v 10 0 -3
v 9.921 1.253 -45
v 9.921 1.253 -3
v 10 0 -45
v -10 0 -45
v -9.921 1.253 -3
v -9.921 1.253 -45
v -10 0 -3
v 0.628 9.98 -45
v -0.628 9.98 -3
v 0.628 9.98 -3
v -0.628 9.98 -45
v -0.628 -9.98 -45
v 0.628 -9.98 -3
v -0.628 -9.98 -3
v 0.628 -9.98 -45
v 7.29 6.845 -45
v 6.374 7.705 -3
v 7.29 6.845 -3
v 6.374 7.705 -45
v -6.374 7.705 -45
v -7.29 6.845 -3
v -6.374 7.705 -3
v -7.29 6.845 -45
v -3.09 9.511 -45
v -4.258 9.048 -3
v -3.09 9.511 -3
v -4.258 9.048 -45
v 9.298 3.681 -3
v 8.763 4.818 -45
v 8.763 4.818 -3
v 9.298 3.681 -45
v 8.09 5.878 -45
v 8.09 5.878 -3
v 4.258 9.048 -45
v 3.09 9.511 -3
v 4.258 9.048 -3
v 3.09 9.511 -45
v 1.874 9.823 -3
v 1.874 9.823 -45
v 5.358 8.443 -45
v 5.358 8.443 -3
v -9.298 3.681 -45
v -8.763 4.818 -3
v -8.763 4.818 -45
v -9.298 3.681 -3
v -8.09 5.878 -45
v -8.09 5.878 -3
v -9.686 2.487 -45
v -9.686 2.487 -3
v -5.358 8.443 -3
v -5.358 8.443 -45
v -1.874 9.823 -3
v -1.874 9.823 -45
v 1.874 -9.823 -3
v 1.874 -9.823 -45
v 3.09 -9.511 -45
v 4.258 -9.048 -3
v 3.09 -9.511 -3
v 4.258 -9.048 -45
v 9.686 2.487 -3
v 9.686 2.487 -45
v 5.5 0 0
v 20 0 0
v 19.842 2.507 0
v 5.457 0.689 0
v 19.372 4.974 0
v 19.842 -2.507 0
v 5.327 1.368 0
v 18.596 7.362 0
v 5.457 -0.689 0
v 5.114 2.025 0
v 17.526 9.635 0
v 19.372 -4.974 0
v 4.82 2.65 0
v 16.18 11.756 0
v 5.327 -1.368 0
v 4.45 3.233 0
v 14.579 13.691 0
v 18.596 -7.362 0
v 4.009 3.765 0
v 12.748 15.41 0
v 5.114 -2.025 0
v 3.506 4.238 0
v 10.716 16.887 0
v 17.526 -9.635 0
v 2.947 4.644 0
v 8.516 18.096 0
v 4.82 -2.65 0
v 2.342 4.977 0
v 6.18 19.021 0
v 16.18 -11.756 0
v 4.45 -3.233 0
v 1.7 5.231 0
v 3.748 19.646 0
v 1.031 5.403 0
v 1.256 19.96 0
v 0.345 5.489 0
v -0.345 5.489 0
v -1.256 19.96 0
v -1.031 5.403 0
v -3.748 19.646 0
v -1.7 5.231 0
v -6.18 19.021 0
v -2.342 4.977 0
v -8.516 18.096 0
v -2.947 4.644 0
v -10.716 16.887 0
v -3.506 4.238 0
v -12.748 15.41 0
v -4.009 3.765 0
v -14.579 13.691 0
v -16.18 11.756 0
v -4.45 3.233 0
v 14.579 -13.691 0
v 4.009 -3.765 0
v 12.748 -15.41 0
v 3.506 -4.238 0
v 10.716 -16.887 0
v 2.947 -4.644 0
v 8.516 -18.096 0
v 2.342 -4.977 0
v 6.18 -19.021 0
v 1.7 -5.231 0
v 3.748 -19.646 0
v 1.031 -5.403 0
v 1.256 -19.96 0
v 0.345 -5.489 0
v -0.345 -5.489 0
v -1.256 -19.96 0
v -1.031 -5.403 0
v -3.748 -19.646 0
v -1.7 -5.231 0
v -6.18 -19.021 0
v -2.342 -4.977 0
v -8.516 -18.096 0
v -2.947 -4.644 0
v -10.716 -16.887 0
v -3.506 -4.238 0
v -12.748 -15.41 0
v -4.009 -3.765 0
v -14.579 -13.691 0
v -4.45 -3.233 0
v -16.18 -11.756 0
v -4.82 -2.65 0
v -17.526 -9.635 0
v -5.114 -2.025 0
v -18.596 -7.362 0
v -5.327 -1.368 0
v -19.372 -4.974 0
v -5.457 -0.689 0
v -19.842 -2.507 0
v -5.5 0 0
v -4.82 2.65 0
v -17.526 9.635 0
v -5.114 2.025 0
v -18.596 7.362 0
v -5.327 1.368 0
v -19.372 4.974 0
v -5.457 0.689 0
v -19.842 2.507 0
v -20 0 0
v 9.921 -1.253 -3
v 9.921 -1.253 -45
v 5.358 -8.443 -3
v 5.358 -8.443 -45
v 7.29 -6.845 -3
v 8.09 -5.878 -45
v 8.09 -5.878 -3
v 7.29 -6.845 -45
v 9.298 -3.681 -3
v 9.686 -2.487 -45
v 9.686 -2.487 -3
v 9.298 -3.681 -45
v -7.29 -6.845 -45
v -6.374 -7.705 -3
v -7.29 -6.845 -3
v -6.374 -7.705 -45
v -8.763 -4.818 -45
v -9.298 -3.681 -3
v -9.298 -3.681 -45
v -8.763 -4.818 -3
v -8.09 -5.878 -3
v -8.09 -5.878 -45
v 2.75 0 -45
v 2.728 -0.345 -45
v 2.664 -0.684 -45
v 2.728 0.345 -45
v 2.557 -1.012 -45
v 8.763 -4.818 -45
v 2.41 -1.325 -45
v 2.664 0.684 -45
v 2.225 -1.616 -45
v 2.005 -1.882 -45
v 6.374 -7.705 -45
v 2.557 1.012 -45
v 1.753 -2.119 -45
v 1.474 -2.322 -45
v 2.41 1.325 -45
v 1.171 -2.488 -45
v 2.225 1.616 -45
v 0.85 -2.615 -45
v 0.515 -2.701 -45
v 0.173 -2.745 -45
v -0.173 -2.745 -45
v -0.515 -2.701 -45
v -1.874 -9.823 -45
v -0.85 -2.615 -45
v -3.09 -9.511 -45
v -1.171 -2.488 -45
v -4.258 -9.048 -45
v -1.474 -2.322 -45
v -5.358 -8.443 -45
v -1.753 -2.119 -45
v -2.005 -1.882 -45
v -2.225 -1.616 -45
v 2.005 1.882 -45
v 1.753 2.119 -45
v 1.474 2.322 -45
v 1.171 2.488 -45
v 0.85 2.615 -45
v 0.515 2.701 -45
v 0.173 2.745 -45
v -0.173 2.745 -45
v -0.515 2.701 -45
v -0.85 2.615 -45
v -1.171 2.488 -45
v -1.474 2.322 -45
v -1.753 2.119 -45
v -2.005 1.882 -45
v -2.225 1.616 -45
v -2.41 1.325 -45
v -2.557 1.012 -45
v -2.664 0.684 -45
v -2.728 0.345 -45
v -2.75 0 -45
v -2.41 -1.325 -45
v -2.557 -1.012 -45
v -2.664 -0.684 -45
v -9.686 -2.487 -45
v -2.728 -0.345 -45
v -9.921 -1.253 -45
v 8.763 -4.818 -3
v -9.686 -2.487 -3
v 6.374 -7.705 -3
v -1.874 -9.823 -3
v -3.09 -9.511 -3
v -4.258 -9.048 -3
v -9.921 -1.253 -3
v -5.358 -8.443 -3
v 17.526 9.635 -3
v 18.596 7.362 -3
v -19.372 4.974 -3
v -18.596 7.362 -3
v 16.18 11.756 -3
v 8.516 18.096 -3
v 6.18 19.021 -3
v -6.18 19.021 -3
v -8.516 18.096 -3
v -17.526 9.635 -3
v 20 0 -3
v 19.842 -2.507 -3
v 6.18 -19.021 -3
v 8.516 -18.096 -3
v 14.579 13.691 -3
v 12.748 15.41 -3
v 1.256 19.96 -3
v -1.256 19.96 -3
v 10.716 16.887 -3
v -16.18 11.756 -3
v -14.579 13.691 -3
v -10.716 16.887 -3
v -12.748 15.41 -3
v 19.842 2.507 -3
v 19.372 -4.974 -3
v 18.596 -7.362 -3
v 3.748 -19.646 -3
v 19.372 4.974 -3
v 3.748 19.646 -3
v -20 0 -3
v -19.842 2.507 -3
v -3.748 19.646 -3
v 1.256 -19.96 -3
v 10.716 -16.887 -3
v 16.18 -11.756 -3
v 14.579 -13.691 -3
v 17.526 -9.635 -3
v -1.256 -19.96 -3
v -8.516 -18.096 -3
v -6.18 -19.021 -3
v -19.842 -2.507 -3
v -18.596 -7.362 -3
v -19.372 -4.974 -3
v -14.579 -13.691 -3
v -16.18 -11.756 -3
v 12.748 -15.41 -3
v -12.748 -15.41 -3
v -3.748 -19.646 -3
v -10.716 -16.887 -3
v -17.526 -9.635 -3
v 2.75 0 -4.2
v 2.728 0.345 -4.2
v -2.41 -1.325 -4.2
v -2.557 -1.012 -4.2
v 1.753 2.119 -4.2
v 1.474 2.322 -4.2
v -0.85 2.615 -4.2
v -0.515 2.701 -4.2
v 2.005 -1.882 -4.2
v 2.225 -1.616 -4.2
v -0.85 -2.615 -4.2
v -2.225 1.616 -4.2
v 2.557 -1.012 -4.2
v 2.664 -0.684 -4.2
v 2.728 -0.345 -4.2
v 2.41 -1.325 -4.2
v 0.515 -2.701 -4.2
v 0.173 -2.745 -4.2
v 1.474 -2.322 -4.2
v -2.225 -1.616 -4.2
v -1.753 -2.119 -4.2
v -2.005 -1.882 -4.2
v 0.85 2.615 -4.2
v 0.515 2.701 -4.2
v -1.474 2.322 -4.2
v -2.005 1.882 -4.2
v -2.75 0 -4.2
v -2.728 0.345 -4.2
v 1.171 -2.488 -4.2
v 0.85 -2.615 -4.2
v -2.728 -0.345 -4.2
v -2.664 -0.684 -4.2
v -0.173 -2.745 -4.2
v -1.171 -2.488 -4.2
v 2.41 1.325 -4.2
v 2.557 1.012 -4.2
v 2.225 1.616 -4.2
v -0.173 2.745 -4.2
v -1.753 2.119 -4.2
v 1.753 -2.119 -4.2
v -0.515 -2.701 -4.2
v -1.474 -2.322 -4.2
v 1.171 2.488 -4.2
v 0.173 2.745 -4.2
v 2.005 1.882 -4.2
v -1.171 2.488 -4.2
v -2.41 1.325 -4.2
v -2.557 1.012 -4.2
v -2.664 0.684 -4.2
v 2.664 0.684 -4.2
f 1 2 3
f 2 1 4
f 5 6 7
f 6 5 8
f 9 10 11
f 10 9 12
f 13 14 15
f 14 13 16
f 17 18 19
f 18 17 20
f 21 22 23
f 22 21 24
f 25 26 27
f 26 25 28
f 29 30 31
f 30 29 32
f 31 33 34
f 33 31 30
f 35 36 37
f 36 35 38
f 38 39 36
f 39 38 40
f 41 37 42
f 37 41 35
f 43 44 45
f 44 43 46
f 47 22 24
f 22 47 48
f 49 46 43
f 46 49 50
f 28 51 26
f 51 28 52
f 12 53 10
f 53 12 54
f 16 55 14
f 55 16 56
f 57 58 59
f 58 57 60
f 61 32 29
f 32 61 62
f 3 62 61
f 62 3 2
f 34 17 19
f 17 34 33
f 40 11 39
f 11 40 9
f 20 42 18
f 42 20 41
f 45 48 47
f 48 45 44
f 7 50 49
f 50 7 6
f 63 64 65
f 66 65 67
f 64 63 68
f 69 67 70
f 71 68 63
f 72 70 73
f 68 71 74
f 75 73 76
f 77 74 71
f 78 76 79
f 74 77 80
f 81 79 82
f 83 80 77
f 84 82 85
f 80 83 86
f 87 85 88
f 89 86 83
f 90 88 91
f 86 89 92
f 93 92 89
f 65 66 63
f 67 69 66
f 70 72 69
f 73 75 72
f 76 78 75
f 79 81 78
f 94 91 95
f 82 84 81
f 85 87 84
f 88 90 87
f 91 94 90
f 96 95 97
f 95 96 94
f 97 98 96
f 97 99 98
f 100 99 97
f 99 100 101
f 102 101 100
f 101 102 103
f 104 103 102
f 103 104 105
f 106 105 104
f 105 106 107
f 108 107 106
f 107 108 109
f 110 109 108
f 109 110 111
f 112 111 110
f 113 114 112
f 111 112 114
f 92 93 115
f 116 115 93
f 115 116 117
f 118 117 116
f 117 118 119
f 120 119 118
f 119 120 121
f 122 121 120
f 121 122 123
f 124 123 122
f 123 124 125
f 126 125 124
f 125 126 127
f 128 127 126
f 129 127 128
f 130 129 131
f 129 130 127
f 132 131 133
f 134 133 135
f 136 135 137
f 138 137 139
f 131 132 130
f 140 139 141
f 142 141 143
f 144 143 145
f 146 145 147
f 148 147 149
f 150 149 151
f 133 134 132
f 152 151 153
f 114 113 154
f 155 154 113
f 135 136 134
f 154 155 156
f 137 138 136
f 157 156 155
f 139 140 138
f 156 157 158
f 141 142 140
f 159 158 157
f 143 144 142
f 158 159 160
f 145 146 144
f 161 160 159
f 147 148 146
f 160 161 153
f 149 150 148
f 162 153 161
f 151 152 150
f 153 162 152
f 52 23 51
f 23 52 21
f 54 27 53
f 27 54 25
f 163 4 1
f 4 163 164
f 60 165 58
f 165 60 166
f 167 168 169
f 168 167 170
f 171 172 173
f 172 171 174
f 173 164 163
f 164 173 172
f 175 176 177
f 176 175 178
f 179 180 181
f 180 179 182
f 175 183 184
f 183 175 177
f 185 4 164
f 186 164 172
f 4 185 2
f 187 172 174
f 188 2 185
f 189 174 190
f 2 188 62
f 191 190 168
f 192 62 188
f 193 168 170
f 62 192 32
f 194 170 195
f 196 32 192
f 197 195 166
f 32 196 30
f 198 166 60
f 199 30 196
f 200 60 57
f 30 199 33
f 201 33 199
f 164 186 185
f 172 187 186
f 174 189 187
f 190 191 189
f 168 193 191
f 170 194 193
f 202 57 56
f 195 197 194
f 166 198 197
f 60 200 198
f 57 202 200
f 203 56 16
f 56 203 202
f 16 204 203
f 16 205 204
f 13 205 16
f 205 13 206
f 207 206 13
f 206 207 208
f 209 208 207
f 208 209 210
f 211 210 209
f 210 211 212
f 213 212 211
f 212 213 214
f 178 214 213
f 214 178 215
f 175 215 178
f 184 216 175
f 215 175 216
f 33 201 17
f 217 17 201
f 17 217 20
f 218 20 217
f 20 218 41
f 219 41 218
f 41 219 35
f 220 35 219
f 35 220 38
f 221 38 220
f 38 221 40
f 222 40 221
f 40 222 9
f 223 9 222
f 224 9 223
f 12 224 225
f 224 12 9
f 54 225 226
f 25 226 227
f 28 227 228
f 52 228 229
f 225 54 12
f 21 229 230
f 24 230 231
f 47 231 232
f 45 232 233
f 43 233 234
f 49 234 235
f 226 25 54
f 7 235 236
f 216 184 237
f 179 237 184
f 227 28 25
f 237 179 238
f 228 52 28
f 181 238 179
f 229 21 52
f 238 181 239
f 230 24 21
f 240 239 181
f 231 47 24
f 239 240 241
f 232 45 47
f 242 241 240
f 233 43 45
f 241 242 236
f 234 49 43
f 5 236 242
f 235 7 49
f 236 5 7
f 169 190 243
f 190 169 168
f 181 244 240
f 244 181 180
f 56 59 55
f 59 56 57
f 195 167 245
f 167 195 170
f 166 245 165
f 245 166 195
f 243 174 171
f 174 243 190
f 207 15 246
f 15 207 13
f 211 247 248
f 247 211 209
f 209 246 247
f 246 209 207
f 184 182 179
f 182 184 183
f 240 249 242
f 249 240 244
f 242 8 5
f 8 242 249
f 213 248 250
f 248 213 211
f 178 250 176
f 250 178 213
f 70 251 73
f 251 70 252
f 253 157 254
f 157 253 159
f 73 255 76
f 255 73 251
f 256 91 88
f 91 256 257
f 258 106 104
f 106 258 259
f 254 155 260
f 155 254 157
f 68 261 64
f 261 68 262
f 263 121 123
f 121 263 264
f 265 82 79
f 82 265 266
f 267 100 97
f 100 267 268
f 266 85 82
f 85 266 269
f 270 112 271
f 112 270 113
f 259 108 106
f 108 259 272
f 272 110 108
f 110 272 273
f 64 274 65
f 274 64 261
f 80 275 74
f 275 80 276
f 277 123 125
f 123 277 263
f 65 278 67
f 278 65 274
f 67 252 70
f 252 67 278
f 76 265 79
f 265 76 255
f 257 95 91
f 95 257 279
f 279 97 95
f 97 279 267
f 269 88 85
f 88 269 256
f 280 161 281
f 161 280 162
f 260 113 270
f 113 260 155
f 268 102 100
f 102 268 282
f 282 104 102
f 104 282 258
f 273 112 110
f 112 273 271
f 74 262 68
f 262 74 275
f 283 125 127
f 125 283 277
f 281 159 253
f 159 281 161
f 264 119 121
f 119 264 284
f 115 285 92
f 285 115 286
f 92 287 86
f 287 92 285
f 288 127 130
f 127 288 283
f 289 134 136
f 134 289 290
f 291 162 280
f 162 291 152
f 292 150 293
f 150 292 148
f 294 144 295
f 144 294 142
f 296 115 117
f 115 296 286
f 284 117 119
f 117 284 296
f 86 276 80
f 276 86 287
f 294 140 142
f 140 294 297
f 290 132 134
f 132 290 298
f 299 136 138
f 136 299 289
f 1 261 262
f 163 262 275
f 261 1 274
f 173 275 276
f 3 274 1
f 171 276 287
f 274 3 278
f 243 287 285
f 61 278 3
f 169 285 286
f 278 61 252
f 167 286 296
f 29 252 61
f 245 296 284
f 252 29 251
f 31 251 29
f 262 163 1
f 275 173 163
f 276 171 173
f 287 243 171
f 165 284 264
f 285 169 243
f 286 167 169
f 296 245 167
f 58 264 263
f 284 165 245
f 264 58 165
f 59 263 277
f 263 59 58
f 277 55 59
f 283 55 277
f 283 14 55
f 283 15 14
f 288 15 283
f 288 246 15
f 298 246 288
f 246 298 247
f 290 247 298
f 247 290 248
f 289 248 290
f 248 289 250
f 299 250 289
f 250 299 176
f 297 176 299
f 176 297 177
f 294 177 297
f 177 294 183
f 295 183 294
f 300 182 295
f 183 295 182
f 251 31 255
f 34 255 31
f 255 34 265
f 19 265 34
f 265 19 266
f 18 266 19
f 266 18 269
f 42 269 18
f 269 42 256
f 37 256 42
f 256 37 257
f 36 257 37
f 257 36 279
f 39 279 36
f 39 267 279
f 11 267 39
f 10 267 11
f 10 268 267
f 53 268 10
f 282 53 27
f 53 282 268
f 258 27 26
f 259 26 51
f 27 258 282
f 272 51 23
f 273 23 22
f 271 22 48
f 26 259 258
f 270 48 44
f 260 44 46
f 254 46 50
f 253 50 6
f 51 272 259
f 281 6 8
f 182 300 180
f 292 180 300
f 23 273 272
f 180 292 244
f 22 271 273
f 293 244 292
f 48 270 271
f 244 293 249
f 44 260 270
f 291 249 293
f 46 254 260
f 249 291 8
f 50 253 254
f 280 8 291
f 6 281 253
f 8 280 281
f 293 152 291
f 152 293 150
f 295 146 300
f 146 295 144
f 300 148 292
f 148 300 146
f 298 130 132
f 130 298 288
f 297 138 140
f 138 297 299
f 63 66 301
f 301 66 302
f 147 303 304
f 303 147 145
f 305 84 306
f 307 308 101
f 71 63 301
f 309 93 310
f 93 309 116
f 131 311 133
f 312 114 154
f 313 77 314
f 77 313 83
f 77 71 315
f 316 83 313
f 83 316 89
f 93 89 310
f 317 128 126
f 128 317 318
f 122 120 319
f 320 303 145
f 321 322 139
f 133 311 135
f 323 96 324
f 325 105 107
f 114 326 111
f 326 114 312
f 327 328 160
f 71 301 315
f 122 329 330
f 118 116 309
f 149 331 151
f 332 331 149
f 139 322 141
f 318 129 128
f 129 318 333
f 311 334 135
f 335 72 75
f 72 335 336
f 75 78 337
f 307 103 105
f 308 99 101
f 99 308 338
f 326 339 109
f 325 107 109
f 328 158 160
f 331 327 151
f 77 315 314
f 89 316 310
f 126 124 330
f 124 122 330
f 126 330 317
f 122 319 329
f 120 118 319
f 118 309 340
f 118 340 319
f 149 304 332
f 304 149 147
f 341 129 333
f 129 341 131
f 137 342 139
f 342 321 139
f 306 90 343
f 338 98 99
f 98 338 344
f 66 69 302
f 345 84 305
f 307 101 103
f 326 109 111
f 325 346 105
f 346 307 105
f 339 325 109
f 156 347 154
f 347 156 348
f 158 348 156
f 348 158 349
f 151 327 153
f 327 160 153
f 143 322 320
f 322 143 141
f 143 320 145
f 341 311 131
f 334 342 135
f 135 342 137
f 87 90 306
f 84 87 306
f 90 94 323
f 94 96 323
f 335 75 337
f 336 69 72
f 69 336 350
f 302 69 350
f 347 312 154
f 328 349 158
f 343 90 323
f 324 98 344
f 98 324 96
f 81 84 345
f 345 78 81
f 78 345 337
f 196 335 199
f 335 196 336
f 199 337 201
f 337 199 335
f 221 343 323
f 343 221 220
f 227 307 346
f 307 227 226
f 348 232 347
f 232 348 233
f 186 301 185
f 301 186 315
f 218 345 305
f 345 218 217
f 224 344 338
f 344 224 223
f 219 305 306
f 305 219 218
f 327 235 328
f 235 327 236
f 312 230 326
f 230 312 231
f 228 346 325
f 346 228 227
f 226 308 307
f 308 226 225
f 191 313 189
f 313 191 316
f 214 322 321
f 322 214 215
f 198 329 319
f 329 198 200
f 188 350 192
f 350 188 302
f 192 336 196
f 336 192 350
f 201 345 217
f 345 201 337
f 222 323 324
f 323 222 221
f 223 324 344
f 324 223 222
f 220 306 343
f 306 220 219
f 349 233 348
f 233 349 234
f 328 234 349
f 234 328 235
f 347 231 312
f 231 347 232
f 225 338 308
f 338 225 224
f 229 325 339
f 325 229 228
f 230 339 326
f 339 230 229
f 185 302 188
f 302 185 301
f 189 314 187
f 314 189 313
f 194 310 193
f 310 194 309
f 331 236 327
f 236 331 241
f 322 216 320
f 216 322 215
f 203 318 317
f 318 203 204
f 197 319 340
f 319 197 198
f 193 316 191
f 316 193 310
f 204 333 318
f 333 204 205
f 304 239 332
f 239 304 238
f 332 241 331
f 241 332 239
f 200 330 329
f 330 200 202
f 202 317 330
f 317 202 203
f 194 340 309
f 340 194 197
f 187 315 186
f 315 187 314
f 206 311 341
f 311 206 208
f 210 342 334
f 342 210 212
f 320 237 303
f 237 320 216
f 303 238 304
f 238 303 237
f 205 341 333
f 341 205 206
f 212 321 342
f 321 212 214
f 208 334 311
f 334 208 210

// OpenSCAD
$fn = 50;


difference() {
	union() {
		translate(v = [0, 0, -45.0000000000]) {
			cylinder(h = 45, r = 10.0000000000);
		}
		translate(v = [0, 0, -3.0000000000]) {
			cylinder(h = 3, r = 20.0000000000);
		}
	}
	union() {
		translate(v = [0, 0, 0]) {
			rotate(a = [0, 0, 0]) {
				difference() {
					union() {
						#translate(v = [0, 0, -45.0000000000]) {
							cylinder(h = 45, r = 2.2500000000);
						}
						#translate(v = [0, 0, -4.2000000000]) {
							cylinder(h = 4.2000000000, r = 10.0000000000, r1 = 2.7500000000, r2 = 5.5000000000);
						}
						#translate(v = [0, 0, -45.0000000000]) {
							cylinder(h = 45, r = 2.7500000000);
						}
						#translate(v = [0, 0, -45.0000000000]) {
							cylinder(h = 45, r = 2.2500000000);
						}
					}
					union();
				}
			}
		}
	}
}
